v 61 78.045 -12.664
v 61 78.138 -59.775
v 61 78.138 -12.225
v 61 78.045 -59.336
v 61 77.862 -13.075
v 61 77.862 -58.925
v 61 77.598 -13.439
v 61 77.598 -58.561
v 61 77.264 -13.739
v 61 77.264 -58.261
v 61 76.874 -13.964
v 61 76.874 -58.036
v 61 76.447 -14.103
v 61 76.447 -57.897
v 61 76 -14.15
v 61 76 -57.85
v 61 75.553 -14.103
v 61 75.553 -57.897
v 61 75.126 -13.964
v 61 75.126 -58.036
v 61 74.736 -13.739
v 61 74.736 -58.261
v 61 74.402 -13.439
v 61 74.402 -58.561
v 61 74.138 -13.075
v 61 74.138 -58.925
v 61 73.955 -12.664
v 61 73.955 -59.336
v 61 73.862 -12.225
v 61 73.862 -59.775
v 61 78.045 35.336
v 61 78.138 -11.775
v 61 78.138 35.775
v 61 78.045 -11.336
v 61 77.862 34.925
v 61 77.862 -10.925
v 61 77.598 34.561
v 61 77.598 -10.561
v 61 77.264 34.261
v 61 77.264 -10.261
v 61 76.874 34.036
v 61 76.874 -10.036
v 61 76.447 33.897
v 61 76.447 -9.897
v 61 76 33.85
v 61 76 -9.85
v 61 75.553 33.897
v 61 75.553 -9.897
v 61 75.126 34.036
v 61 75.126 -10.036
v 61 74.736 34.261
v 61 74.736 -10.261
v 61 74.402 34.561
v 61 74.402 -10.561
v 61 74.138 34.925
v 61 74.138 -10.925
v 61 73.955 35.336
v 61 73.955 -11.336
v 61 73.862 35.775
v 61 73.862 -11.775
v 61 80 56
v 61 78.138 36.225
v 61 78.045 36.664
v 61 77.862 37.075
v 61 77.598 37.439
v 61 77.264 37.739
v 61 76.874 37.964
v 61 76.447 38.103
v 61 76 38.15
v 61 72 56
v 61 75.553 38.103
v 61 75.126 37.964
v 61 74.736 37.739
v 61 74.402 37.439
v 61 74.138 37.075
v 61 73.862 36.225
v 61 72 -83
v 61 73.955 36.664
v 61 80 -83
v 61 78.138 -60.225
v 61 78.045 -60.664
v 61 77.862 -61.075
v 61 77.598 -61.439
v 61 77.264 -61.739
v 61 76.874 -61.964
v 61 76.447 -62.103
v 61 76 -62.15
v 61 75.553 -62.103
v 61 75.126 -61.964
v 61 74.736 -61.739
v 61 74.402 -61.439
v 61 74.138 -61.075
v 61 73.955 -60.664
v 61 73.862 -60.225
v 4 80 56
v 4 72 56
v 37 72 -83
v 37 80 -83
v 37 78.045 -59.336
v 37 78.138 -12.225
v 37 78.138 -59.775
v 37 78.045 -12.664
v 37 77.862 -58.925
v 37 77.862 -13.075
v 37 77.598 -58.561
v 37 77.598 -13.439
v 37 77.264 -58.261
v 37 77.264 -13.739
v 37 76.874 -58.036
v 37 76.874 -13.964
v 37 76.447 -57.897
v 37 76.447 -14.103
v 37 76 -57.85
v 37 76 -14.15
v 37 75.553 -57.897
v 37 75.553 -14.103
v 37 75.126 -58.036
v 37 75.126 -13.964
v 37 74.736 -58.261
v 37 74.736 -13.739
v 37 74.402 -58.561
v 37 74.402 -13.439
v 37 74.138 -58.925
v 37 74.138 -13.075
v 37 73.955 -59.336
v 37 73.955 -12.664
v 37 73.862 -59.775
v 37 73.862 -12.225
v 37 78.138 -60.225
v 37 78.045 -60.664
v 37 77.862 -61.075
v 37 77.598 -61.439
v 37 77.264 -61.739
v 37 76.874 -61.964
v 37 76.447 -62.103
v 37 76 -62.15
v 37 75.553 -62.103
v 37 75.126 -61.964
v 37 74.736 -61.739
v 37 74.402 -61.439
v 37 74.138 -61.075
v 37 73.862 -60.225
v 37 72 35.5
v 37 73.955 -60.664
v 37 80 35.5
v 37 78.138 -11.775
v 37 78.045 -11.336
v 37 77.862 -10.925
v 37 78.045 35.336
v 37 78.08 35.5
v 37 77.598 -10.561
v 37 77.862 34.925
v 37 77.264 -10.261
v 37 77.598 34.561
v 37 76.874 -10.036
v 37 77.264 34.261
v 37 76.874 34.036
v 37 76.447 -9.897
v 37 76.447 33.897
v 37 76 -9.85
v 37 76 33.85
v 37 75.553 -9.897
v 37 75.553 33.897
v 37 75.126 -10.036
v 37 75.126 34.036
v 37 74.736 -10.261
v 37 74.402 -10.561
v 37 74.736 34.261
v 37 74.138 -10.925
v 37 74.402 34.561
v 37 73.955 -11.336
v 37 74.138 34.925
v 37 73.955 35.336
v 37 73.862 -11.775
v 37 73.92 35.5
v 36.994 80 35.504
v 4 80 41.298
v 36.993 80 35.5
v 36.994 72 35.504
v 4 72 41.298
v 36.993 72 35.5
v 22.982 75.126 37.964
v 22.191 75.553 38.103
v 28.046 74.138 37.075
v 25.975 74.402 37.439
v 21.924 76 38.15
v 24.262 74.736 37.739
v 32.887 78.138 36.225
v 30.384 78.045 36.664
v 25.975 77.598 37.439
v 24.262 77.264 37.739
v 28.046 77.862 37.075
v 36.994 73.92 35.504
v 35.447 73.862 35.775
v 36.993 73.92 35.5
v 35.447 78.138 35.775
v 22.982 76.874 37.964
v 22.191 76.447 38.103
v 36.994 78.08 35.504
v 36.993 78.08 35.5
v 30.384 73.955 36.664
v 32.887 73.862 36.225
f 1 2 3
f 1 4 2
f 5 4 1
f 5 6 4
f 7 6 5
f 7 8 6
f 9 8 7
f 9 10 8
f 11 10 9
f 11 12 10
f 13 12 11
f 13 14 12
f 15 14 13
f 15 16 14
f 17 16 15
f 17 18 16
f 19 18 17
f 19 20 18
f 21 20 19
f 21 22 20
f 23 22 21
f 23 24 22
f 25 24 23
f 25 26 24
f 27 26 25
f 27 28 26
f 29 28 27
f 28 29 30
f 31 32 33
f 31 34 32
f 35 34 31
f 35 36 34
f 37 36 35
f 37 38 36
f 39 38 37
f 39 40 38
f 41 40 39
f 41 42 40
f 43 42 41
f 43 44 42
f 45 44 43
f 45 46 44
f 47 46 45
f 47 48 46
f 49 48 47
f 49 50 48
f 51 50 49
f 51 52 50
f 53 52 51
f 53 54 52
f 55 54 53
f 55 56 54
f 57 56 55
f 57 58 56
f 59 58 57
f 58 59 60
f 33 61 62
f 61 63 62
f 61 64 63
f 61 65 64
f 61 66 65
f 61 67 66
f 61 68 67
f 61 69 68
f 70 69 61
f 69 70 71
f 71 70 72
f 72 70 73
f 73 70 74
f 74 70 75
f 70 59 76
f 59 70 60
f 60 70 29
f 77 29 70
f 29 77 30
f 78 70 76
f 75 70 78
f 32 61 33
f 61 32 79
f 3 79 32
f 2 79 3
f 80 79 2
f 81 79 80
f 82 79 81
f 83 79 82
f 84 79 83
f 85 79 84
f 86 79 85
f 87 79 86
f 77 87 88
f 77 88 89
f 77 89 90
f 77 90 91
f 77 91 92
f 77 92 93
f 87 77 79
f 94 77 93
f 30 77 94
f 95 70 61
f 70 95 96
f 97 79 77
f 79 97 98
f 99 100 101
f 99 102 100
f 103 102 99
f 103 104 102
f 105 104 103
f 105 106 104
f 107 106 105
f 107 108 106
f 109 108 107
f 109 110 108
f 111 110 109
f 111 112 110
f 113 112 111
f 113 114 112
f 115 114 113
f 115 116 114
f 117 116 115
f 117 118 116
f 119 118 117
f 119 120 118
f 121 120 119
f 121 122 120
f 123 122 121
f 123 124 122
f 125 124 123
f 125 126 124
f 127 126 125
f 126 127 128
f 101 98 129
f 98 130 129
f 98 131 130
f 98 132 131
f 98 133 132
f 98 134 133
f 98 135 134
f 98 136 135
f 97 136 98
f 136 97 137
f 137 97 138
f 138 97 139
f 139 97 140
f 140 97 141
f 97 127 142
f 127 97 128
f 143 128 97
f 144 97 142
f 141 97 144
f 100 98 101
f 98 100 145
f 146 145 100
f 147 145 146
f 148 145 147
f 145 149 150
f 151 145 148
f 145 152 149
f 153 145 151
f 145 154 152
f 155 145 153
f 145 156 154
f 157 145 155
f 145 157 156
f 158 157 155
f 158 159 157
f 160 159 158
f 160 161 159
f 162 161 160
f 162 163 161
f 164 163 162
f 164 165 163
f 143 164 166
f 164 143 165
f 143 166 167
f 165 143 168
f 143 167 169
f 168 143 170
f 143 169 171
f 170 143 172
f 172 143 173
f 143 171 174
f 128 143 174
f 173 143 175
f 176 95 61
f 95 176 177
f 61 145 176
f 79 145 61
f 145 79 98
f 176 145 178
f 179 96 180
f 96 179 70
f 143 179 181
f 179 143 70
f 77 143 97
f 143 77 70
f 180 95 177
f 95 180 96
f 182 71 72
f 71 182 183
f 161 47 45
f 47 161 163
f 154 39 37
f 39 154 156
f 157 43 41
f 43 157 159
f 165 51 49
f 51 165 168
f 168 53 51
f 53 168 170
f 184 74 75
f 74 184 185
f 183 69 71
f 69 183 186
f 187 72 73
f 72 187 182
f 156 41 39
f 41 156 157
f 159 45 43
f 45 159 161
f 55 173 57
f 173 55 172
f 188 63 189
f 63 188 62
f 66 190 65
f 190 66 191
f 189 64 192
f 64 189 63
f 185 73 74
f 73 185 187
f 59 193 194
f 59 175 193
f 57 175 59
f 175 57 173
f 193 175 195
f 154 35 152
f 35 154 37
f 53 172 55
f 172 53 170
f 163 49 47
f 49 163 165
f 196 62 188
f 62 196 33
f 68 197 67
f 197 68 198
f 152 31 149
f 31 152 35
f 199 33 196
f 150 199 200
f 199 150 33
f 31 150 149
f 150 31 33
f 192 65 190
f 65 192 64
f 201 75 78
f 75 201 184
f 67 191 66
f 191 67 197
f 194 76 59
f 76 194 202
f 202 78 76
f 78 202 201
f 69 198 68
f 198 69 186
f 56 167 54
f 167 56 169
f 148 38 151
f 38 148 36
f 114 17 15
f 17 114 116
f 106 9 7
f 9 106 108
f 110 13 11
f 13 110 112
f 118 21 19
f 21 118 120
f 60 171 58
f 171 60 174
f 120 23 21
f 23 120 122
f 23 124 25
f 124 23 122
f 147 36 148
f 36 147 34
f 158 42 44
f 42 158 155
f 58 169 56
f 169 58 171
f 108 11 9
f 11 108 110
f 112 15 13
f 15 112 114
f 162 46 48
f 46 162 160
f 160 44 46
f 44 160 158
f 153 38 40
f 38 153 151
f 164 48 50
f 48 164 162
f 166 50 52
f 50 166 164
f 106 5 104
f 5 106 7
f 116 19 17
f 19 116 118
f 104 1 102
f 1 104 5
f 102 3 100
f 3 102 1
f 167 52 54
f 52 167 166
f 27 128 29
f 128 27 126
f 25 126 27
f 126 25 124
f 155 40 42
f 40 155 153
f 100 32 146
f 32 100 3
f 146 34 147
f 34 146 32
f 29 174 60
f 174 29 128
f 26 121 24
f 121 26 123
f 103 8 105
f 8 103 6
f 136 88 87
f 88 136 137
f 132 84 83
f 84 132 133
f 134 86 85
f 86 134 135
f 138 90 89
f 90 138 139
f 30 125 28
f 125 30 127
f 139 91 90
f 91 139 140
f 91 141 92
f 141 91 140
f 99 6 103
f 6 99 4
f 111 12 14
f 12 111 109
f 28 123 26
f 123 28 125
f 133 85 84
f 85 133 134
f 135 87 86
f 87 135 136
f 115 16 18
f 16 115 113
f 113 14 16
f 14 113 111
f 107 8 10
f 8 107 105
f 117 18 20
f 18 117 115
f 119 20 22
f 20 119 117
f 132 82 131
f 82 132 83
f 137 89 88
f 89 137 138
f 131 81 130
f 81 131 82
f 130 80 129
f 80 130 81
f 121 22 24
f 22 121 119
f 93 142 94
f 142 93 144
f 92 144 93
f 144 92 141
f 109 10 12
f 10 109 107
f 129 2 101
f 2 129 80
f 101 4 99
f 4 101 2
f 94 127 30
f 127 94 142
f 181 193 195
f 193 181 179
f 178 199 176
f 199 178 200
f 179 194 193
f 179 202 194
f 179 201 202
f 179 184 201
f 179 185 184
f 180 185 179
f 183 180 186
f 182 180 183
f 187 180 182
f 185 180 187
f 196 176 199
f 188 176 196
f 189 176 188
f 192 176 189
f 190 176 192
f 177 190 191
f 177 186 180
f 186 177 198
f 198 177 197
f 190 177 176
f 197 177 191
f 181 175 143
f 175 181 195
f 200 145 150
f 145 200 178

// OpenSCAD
difference() {
union() {
    // long left side
    translate([37,72,-83])
    cube([24,8,139]);
    
    // left top
    translate([4,72,48])
    cube([33,8,8]);
    
    // left top angle
    translate([3,72,54])
    rotate([0,99.96,0])
    cube([13,8,40]);
}
    // clean up top harness part
    translate([-10,70,30])
    cube([14,50,50]);

    // top hole
    translate([-4,76,36])
    rotate([0,90,0])
    cylinder(r=2.15,100, $fn=30);

    // second hole
    translate([-4,76,-12])
    rotate([0,90,0])
    cylinder(r=2.15,90, $fn=30);
    
    // bottom hole
    translate([-4,76,-60])
    rotate([0,90,0])
    cylinder(r=2.15,90, $fn=30);
    
    // clean up angled piece
    translate([0,72,42])
    rotate([0,99.96,0])
    cube([4,40,37.56]);
    
    // clean up middle part
    translate([33,72,-83])
    cube([4,40,118.5]);
}
